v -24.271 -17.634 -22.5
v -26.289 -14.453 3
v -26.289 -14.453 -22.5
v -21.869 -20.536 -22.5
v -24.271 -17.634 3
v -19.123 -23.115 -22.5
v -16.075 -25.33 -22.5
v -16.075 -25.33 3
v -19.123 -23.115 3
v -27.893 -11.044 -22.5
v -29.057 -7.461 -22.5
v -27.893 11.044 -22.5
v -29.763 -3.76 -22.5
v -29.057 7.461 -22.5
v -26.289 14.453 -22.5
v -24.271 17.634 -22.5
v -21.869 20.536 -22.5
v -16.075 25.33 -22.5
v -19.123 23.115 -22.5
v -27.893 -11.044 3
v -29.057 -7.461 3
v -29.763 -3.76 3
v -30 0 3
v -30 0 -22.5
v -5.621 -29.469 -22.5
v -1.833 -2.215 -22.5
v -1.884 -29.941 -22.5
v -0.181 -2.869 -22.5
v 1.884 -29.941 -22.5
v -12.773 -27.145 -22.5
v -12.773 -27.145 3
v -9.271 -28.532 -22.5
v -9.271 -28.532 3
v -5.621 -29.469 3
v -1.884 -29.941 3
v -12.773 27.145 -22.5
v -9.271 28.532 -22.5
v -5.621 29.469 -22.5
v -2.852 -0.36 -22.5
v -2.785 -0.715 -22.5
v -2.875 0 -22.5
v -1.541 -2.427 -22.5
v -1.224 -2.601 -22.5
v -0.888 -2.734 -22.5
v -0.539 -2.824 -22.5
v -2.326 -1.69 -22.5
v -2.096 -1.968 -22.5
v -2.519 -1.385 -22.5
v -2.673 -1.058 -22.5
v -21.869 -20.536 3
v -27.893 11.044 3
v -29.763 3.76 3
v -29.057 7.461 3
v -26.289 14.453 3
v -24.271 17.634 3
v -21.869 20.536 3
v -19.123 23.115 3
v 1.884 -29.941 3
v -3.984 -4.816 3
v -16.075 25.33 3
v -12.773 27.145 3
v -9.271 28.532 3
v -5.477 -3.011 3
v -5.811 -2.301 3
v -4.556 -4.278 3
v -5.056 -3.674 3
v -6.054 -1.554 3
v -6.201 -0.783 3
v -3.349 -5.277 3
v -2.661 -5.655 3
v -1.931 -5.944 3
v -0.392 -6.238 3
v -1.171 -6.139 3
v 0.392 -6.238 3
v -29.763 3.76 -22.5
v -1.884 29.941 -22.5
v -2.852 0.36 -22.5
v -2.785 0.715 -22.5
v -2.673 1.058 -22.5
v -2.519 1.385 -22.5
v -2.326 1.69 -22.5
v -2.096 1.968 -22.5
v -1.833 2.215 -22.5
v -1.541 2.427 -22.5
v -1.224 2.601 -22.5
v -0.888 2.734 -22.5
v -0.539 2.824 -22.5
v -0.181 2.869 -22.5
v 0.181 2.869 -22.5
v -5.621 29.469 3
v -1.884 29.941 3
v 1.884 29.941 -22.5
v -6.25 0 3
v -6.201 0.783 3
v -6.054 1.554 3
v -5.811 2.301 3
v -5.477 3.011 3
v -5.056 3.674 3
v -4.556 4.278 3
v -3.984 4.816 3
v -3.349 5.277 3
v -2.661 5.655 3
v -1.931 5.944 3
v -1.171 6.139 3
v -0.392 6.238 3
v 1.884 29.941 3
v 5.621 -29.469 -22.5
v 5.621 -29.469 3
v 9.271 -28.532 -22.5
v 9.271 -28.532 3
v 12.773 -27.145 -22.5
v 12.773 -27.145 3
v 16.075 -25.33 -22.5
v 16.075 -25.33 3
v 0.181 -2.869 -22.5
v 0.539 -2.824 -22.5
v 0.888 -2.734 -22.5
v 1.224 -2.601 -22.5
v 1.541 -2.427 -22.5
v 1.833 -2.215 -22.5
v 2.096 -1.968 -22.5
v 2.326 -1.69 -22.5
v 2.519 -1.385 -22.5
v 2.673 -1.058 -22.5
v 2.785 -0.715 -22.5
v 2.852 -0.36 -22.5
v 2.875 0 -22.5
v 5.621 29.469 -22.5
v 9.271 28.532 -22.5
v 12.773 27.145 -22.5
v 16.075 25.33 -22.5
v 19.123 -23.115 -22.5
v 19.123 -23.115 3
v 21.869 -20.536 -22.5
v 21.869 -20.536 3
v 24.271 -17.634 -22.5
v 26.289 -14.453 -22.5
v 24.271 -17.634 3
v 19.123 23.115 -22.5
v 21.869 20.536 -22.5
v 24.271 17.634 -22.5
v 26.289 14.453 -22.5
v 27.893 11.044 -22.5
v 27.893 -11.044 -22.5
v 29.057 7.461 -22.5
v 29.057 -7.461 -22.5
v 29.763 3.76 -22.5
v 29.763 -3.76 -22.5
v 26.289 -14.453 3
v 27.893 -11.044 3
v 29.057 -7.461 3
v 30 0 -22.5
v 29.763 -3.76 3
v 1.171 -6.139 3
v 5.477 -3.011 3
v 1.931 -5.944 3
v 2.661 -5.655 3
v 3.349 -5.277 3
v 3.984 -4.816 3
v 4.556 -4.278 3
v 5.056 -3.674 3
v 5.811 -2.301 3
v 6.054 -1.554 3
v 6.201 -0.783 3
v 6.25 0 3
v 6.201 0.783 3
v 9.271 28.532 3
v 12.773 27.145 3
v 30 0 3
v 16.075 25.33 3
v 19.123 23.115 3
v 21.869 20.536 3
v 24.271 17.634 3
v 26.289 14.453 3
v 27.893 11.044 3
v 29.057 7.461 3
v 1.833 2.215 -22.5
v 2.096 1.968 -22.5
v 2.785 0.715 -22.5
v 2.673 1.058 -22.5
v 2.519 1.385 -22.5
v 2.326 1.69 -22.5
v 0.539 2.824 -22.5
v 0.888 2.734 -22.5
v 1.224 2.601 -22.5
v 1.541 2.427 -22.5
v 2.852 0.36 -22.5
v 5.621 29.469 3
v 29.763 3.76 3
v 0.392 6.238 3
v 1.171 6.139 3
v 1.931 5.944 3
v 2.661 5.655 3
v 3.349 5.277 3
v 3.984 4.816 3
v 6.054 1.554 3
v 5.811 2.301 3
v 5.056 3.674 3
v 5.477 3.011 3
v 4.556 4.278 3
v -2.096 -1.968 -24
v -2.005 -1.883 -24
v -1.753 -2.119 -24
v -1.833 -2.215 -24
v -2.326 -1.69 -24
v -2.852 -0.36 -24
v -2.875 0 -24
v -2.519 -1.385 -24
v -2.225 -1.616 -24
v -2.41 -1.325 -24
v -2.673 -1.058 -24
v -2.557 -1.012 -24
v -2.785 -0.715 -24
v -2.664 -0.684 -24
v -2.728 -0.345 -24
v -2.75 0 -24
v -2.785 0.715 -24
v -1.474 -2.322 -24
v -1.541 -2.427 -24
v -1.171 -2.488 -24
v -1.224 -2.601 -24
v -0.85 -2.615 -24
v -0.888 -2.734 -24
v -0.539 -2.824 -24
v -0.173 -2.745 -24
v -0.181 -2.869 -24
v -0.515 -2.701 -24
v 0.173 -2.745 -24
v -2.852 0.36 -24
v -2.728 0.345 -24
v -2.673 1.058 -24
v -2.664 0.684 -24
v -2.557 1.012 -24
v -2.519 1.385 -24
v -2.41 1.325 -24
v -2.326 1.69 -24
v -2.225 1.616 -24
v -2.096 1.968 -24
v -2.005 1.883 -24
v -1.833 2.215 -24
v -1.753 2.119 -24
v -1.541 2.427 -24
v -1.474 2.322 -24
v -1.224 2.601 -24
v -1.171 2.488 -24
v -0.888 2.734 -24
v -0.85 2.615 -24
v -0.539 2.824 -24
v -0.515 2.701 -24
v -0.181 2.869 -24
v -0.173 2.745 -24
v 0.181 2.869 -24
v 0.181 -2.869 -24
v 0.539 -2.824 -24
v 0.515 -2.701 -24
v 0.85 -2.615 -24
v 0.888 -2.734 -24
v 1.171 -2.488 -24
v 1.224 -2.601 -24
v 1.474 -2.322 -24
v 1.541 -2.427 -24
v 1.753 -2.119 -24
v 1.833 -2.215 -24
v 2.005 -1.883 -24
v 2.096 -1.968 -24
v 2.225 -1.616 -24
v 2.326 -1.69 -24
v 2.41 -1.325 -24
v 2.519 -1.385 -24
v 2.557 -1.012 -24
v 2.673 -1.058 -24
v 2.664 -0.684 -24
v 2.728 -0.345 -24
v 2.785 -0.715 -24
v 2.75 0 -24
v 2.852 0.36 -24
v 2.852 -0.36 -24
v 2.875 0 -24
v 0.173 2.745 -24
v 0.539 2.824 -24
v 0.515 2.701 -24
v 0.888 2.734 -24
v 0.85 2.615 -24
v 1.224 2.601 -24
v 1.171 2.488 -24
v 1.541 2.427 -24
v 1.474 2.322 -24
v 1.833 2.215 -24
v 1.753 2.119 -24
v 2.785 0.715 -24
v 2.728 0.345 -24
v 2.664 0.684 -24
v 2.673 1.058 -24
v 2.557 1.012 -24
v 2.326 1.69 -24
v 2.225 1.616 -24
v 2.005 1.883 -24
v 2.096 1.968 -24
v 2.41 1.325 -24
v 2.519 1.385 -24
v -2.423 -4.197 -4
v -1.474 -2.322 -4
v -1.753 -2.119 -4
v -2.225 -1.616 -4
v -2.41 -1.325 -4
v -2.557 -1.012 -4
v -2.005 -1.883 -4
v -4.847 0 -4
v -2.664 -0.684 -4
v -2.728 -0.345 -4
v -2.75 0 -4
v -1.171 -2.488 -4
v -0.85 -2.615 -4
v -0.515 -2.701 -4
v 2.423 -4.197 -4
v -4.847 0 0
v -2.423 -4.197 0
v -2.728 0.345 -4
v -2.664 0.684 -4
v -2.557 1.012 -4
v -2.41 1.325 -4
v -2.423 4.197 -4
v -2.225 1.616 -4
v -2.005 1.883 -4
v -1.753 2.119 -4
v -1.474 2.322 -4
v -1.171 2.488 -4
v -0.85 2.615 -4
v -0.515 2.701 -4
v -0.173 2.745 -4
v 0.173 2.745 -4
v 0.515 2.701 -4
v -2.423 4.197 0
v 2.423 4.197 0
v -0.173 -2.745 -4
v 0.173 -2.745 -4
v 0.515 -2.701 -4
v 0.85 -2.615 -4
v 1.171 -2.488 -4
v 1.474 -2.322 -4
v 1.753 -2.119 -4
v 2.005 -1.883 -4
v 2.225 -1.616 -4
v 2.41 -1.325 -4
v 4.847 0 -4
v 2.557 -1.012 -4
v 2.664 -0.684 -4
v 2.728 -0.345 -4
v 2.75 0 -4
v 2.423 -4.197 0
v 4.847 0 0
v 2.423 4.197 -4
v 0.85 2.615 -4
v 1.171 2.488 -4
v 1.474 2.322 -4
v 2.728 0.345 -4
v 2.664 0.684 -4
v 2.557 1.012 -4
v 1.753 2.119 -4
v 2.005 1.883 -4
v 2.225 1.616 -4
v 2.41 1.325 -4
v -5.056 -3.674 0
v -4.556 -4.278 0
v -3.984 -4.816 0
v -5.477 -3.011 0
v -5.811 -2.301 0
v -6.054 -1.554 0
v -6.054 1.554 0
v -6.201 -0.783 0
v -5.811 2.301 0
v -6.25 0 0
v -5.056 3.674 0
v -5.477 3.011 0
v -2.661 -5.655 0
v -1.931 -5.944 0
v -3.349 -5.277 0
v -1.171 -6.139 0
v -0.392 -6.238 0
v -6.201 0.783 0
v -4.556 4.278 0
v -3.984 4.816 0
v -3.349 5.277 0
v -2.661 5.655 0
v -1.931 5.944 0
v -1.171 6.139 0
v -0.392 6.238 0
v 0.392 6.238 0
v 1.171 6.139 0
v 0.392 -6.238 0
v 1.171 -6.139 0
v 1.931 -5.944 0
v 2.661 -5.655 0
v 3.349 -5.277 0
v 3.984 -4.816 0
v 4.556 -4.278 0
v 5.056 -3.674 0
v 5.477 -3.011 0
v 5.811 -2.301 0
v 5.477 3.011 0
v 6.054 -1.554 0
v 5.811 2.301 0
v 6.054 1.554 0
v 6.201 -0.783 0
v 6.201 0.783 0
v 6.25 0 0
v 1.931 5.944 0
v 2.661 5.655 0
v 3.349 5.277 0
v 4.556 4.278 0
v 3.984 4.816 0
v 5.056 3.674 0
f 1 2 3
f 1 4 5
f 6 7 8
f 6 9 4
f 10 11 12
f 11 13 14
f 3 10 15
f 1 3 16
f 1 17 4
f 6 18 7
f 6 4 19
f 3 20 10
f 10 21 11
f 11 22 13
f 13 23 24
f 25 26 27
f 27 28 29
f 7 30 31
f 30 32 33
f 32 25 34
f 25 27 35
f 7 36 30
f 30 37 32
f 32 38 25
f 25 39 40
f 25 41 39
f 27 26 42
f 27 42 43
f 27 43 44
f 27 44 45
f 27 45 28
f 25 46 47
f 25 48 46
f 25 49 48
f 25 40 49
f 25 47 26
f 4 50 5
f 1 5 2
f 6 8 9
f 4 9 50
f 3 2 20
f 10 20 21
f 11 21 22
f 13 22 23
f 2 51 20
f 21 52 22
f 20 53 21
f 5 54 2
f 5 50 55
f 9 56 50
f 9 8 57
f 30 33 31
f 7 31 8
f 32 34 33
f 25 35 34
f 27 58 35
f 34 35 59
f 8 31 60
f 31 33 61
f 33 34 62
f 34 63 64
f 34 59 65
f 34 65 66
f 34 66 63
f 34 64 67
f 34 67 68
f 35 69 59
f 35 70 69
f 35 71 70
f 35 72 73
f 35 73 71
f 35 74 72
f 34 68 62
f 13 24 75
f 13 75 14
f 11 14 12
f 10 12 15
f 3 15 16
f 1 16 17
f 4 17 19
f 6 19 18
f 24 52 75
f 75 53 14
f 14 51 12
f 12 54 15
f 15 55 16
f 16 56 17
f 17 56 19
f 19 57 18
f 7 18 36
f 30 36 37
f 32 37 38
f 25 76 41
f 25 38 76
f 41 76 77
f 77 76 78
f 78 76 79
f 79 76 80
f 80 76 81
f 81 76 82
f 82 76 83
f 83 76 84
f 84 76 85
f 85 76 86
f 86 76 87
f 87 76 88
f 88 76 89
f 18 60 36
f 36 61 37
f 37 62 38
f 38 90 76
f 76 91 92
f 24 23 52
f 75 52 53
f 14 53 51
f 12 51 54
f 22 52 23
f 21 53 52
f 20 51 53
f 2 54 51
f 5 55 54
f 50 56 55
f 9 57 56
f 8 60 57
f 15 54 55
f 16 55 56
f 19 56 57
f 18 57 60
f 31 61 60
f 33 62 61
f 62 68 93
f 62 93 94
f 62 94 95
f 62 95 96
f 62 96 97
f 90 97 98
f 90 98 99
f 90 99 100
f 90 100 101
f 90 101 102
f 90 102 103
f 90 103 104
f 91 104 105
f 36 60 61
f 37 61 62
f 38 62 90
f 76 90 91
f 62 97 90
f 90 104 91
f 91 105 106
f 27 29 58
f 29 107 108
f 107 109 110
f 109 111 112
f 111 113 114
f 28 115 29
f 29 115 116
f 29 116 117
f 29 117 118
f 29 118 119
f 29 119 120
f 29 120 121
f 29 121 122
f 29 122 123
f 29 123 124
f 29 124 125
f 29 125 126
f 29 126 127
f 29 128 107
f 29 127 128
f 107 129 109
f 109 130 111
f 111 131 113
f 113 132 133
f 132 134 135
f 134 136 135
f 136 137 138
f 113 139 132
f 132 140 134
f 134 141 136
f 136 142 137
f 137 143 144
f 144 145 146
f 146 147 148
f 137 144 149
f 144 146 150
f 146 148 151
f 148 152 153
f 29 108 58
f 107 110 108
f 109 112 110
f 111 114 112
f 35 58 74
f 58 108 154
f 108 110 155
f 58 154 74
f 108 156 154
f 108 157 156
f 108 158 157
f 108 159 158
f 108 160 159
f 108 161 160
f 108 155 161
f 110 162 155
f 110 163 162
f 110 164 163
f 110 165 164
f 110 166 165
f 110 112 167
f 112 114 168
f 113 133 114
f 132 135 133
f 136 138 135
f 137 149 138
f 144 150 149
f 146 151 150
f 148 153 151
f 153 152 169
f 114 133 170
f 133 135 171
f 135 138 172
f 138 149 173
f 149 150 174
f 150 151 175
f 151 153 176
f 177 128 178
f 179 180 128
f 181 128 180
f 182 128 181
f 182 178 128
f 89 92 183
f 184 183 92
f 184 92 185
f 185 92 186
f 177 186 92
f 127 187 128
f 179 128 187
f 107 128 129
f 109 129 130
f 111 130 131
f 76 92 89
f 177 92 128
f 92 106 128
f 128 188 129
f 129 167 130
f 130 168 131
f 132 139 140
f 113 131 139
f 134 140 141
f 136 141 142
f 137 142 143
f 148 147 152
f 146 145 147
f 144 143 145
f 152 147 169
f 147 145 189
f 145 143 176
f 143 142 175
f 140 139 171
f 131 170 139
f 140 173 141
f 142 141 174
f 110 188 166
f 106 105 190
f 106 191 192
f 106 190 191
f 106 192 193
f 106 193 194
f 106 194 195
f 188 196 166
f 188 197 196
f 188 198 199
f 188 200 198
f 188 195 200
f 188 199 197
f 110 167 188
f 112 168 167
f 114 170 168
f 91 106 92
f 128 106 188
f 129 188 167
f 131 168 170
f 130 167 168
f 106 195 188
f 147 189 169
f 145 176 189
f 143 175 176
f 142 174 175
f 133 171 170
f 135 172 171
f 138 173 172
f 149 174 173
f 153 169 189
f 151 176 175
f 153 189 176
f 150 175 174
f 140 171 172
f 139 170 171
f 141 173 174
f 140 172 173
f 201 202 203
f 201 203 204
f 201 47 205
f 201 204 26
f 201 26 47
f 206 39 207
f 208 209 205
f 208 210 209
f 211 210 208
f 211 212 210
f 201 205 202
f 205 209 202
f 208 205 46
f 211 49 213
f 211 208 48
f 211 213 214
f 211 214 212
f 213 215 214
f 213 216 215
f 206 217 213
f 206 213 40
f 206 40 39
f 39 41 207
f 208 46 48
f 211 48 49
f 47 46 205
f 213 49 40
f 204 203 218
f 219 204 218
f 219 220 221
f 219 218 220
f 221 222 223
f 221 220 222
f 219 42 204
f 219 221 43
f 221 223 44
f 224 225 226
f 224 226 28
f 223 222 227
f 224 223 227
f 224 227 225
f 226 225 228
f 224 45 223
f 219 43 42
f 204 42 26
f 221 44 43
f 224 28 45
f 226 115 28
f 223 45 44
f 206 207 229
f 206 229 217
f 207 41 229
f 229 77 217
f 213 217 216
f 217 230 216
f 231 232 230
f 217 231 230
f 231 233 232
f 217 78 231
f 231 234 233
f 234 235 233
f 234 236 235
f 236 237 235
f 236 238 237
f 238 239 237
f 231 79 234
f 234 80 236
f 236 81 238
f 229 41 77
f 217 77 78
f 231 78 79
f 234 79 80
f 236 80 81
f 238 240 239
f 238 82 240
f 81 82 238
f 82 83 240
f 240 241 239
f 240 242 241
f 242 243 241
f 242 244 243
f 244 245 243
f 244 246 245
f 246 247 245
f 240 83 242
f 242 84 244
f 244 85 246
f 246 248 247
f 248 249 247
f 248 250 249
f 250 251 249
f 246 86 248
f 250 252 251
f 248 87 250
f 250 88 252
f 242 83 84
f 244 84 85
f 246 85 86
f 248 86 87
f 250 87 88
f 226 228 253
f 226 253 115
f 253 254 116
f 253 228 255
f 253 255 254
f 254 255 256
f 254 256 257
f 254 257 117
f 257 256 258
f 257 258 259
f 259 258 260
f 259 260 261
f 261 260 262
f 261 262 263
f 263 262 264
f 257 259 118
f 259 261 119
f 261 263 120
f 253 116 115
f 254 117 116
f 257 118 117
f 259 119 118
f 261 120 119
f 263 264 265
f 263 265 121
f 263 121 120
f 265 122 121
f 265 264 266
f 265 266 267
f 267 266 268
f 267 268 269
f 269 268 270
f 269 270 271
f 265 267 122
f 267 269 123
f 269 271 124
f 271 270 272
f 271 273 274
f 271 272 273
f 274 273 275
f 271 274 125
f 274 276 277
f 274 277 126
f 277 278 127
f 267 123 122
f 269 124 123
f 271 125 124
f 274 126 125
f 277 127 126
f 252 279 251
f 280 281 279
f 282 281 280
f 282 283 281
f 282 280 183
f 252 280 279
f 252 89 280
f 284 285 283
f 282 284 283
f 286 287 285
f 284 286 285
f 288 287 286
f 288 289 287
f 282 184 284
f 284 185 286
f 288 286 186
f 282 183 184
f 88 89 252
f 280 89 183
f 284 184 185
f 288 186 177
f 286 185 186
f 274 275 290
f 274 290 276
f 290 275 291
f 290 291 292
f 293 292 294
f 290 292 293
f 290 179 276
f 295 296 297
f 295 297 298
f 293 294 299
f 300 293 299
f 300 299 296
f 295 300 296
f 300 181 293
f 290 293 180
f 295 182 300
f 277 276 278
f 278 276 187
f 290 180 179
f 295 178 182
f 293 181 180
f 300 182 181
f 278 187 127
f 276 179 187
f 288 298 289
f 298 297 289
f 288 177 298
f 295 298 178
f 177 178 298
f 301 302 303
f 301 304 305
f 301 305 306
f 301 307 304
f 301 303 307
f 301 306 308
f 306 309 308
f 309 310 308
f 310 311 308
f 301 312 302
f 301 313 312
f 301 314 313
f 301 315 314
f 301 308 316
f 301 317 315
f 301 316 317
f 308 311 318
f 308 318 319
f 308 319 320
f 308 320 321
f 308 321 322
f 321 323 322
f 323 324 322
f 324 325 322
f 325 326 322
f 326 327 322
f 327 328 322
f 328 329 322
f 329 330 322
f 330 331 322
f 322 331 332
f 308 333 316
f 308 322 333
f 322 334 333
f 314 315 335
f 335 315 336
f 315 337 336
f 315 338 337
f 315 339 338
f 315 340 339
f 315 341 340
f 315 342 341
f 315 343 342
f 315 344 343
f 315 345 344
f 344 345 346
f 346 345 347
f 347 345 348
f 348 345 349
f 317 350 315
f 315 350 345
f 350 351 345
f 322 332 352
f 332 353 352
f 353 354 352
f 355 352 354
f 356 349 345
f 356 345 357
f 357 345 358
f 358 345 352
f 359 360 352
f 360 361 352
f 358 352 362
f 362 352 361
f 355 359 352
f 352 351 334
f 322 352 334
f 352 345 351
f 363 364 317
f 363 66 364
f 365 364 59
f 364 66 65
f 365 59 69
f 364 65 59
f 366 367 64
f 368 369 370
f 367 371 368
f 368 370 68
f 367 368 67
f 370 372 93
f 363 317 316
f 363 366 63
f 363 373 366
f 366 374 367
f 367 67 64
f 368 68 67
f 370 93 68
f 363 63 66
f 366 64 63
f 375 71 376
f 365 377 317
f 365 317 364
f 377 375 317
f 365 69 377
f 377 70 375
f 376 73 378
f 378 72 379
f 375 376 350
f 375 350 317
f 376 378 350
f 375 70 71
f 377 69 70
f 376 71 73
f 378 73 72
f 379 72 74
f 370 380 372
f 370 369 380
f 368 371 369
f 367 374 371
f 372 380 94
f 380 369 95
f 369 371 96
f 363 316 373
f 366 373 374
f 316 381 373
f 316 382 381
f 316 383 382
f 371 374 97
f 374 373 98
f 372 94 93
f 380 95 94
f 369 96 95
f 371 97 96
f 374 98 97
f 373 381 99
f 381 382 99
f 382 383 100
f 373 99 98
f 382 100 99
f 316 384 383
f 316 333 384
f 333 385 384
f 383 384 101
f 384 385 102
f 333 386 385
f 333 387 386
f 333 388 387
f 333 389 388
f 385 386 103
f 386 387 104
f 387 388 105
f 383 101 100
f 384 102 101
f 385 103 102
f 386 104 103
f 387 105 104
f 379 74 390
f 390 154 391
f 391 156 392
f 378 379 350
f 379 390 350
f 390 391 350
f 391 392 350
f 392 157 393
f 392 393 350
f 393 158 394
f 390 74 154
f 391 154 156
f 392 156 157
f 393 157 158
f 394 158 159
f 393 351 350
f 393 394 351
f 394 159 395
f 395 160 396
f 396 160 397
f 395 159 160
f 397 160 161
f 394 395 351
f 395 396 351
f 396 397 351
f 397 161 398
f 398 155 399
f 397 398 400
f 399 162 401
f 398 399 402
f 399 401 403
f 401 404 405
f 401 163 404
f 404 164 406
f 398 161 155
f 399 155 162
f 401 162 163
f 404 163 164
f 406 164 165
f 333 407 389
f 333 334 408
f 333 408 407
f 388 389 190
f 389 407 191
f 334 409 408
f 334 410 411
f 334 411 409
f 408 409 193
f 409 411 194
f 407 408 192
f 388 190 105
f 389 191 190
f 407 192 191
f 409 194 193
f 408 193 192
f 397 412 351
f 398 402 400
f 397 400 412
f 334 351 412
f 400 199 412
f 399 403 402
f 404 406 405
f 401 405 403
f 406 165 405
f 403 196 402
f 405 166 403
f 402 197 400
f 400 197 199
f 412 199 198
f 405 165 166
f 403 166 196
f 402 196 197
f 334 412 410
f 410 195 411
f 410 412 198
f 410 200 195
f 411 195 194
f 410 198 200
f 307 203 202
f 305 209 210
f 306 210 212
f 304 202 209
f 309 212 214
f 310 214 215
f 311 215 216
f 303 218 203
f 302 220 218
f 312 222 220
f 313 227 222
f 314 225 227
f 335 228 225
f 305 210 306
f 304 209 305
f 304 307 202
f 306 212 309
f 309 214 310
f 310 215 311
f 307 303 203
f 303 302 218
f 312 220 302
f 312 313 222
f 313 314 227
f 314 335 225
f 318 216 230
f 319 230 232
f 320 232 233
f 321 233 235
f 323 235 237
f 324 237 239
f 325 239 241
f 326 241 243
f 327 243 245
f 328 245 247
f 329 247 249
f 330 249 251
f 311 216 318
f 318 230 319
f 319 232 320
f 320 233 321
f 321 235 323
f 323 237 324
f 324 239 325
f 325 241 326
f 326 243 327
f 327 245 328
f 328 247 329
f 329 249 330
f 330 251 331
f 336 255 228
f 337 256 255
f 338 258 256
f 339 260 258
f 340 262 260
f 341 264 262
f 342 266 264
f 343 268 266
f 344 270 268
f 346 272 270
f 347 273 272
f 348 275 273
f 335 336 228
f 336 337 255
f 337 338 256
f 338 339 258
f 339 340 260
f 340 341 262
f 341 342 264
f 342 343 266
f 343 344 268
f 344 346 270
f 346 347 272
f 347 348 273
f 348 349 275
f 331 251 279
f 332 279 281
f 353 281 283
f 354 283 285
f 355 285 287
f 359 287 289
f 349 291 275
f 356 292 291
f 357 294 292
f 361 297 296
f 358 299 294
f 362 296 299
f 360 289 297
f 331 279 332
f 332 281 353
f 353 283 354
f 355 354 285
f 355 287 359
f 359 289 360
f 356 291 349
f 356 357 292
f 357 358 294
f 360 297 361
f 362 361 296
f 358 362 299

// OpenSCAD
$fn = 50;


difference() {
	union() {
		translate(v = [0, 0, -22.5000000000]) {
			cylinder(h = 25.5000000000, r = 30.0000000000);
		}
		#translate(v = [0, 0, -24.0000000000]) {
			cylinder(h = 24, r = 2.8750000000);
		}
	}
	union() {
		translate(v = [0, 0, 0]) {
			rotate(a = [0, 0, 0]) {
				difference() {
					union() {
						translate(v = [0, 0, -4]) {
							linear_extrude(height = 4) {
								polygon(points = [[4.8468000000, 0.0000000000], [2.4234000000, 4.1974519271], [-2.4234000000, 4.1974519271], [-4.8468000000, 0.0000000000], [-2.4234000000, -4.1974519271], [2.4234000000, -4.1974519271]]);
							}
						}
					}
					union();
				}
			}
		}
		#cylinder(h = 3, r = 6.2500000000);
		#translate(v = [0, 0, -100.0000000000]) {
			cylinder(h = 200, r = 2.7500000000);
		}
	}
}
